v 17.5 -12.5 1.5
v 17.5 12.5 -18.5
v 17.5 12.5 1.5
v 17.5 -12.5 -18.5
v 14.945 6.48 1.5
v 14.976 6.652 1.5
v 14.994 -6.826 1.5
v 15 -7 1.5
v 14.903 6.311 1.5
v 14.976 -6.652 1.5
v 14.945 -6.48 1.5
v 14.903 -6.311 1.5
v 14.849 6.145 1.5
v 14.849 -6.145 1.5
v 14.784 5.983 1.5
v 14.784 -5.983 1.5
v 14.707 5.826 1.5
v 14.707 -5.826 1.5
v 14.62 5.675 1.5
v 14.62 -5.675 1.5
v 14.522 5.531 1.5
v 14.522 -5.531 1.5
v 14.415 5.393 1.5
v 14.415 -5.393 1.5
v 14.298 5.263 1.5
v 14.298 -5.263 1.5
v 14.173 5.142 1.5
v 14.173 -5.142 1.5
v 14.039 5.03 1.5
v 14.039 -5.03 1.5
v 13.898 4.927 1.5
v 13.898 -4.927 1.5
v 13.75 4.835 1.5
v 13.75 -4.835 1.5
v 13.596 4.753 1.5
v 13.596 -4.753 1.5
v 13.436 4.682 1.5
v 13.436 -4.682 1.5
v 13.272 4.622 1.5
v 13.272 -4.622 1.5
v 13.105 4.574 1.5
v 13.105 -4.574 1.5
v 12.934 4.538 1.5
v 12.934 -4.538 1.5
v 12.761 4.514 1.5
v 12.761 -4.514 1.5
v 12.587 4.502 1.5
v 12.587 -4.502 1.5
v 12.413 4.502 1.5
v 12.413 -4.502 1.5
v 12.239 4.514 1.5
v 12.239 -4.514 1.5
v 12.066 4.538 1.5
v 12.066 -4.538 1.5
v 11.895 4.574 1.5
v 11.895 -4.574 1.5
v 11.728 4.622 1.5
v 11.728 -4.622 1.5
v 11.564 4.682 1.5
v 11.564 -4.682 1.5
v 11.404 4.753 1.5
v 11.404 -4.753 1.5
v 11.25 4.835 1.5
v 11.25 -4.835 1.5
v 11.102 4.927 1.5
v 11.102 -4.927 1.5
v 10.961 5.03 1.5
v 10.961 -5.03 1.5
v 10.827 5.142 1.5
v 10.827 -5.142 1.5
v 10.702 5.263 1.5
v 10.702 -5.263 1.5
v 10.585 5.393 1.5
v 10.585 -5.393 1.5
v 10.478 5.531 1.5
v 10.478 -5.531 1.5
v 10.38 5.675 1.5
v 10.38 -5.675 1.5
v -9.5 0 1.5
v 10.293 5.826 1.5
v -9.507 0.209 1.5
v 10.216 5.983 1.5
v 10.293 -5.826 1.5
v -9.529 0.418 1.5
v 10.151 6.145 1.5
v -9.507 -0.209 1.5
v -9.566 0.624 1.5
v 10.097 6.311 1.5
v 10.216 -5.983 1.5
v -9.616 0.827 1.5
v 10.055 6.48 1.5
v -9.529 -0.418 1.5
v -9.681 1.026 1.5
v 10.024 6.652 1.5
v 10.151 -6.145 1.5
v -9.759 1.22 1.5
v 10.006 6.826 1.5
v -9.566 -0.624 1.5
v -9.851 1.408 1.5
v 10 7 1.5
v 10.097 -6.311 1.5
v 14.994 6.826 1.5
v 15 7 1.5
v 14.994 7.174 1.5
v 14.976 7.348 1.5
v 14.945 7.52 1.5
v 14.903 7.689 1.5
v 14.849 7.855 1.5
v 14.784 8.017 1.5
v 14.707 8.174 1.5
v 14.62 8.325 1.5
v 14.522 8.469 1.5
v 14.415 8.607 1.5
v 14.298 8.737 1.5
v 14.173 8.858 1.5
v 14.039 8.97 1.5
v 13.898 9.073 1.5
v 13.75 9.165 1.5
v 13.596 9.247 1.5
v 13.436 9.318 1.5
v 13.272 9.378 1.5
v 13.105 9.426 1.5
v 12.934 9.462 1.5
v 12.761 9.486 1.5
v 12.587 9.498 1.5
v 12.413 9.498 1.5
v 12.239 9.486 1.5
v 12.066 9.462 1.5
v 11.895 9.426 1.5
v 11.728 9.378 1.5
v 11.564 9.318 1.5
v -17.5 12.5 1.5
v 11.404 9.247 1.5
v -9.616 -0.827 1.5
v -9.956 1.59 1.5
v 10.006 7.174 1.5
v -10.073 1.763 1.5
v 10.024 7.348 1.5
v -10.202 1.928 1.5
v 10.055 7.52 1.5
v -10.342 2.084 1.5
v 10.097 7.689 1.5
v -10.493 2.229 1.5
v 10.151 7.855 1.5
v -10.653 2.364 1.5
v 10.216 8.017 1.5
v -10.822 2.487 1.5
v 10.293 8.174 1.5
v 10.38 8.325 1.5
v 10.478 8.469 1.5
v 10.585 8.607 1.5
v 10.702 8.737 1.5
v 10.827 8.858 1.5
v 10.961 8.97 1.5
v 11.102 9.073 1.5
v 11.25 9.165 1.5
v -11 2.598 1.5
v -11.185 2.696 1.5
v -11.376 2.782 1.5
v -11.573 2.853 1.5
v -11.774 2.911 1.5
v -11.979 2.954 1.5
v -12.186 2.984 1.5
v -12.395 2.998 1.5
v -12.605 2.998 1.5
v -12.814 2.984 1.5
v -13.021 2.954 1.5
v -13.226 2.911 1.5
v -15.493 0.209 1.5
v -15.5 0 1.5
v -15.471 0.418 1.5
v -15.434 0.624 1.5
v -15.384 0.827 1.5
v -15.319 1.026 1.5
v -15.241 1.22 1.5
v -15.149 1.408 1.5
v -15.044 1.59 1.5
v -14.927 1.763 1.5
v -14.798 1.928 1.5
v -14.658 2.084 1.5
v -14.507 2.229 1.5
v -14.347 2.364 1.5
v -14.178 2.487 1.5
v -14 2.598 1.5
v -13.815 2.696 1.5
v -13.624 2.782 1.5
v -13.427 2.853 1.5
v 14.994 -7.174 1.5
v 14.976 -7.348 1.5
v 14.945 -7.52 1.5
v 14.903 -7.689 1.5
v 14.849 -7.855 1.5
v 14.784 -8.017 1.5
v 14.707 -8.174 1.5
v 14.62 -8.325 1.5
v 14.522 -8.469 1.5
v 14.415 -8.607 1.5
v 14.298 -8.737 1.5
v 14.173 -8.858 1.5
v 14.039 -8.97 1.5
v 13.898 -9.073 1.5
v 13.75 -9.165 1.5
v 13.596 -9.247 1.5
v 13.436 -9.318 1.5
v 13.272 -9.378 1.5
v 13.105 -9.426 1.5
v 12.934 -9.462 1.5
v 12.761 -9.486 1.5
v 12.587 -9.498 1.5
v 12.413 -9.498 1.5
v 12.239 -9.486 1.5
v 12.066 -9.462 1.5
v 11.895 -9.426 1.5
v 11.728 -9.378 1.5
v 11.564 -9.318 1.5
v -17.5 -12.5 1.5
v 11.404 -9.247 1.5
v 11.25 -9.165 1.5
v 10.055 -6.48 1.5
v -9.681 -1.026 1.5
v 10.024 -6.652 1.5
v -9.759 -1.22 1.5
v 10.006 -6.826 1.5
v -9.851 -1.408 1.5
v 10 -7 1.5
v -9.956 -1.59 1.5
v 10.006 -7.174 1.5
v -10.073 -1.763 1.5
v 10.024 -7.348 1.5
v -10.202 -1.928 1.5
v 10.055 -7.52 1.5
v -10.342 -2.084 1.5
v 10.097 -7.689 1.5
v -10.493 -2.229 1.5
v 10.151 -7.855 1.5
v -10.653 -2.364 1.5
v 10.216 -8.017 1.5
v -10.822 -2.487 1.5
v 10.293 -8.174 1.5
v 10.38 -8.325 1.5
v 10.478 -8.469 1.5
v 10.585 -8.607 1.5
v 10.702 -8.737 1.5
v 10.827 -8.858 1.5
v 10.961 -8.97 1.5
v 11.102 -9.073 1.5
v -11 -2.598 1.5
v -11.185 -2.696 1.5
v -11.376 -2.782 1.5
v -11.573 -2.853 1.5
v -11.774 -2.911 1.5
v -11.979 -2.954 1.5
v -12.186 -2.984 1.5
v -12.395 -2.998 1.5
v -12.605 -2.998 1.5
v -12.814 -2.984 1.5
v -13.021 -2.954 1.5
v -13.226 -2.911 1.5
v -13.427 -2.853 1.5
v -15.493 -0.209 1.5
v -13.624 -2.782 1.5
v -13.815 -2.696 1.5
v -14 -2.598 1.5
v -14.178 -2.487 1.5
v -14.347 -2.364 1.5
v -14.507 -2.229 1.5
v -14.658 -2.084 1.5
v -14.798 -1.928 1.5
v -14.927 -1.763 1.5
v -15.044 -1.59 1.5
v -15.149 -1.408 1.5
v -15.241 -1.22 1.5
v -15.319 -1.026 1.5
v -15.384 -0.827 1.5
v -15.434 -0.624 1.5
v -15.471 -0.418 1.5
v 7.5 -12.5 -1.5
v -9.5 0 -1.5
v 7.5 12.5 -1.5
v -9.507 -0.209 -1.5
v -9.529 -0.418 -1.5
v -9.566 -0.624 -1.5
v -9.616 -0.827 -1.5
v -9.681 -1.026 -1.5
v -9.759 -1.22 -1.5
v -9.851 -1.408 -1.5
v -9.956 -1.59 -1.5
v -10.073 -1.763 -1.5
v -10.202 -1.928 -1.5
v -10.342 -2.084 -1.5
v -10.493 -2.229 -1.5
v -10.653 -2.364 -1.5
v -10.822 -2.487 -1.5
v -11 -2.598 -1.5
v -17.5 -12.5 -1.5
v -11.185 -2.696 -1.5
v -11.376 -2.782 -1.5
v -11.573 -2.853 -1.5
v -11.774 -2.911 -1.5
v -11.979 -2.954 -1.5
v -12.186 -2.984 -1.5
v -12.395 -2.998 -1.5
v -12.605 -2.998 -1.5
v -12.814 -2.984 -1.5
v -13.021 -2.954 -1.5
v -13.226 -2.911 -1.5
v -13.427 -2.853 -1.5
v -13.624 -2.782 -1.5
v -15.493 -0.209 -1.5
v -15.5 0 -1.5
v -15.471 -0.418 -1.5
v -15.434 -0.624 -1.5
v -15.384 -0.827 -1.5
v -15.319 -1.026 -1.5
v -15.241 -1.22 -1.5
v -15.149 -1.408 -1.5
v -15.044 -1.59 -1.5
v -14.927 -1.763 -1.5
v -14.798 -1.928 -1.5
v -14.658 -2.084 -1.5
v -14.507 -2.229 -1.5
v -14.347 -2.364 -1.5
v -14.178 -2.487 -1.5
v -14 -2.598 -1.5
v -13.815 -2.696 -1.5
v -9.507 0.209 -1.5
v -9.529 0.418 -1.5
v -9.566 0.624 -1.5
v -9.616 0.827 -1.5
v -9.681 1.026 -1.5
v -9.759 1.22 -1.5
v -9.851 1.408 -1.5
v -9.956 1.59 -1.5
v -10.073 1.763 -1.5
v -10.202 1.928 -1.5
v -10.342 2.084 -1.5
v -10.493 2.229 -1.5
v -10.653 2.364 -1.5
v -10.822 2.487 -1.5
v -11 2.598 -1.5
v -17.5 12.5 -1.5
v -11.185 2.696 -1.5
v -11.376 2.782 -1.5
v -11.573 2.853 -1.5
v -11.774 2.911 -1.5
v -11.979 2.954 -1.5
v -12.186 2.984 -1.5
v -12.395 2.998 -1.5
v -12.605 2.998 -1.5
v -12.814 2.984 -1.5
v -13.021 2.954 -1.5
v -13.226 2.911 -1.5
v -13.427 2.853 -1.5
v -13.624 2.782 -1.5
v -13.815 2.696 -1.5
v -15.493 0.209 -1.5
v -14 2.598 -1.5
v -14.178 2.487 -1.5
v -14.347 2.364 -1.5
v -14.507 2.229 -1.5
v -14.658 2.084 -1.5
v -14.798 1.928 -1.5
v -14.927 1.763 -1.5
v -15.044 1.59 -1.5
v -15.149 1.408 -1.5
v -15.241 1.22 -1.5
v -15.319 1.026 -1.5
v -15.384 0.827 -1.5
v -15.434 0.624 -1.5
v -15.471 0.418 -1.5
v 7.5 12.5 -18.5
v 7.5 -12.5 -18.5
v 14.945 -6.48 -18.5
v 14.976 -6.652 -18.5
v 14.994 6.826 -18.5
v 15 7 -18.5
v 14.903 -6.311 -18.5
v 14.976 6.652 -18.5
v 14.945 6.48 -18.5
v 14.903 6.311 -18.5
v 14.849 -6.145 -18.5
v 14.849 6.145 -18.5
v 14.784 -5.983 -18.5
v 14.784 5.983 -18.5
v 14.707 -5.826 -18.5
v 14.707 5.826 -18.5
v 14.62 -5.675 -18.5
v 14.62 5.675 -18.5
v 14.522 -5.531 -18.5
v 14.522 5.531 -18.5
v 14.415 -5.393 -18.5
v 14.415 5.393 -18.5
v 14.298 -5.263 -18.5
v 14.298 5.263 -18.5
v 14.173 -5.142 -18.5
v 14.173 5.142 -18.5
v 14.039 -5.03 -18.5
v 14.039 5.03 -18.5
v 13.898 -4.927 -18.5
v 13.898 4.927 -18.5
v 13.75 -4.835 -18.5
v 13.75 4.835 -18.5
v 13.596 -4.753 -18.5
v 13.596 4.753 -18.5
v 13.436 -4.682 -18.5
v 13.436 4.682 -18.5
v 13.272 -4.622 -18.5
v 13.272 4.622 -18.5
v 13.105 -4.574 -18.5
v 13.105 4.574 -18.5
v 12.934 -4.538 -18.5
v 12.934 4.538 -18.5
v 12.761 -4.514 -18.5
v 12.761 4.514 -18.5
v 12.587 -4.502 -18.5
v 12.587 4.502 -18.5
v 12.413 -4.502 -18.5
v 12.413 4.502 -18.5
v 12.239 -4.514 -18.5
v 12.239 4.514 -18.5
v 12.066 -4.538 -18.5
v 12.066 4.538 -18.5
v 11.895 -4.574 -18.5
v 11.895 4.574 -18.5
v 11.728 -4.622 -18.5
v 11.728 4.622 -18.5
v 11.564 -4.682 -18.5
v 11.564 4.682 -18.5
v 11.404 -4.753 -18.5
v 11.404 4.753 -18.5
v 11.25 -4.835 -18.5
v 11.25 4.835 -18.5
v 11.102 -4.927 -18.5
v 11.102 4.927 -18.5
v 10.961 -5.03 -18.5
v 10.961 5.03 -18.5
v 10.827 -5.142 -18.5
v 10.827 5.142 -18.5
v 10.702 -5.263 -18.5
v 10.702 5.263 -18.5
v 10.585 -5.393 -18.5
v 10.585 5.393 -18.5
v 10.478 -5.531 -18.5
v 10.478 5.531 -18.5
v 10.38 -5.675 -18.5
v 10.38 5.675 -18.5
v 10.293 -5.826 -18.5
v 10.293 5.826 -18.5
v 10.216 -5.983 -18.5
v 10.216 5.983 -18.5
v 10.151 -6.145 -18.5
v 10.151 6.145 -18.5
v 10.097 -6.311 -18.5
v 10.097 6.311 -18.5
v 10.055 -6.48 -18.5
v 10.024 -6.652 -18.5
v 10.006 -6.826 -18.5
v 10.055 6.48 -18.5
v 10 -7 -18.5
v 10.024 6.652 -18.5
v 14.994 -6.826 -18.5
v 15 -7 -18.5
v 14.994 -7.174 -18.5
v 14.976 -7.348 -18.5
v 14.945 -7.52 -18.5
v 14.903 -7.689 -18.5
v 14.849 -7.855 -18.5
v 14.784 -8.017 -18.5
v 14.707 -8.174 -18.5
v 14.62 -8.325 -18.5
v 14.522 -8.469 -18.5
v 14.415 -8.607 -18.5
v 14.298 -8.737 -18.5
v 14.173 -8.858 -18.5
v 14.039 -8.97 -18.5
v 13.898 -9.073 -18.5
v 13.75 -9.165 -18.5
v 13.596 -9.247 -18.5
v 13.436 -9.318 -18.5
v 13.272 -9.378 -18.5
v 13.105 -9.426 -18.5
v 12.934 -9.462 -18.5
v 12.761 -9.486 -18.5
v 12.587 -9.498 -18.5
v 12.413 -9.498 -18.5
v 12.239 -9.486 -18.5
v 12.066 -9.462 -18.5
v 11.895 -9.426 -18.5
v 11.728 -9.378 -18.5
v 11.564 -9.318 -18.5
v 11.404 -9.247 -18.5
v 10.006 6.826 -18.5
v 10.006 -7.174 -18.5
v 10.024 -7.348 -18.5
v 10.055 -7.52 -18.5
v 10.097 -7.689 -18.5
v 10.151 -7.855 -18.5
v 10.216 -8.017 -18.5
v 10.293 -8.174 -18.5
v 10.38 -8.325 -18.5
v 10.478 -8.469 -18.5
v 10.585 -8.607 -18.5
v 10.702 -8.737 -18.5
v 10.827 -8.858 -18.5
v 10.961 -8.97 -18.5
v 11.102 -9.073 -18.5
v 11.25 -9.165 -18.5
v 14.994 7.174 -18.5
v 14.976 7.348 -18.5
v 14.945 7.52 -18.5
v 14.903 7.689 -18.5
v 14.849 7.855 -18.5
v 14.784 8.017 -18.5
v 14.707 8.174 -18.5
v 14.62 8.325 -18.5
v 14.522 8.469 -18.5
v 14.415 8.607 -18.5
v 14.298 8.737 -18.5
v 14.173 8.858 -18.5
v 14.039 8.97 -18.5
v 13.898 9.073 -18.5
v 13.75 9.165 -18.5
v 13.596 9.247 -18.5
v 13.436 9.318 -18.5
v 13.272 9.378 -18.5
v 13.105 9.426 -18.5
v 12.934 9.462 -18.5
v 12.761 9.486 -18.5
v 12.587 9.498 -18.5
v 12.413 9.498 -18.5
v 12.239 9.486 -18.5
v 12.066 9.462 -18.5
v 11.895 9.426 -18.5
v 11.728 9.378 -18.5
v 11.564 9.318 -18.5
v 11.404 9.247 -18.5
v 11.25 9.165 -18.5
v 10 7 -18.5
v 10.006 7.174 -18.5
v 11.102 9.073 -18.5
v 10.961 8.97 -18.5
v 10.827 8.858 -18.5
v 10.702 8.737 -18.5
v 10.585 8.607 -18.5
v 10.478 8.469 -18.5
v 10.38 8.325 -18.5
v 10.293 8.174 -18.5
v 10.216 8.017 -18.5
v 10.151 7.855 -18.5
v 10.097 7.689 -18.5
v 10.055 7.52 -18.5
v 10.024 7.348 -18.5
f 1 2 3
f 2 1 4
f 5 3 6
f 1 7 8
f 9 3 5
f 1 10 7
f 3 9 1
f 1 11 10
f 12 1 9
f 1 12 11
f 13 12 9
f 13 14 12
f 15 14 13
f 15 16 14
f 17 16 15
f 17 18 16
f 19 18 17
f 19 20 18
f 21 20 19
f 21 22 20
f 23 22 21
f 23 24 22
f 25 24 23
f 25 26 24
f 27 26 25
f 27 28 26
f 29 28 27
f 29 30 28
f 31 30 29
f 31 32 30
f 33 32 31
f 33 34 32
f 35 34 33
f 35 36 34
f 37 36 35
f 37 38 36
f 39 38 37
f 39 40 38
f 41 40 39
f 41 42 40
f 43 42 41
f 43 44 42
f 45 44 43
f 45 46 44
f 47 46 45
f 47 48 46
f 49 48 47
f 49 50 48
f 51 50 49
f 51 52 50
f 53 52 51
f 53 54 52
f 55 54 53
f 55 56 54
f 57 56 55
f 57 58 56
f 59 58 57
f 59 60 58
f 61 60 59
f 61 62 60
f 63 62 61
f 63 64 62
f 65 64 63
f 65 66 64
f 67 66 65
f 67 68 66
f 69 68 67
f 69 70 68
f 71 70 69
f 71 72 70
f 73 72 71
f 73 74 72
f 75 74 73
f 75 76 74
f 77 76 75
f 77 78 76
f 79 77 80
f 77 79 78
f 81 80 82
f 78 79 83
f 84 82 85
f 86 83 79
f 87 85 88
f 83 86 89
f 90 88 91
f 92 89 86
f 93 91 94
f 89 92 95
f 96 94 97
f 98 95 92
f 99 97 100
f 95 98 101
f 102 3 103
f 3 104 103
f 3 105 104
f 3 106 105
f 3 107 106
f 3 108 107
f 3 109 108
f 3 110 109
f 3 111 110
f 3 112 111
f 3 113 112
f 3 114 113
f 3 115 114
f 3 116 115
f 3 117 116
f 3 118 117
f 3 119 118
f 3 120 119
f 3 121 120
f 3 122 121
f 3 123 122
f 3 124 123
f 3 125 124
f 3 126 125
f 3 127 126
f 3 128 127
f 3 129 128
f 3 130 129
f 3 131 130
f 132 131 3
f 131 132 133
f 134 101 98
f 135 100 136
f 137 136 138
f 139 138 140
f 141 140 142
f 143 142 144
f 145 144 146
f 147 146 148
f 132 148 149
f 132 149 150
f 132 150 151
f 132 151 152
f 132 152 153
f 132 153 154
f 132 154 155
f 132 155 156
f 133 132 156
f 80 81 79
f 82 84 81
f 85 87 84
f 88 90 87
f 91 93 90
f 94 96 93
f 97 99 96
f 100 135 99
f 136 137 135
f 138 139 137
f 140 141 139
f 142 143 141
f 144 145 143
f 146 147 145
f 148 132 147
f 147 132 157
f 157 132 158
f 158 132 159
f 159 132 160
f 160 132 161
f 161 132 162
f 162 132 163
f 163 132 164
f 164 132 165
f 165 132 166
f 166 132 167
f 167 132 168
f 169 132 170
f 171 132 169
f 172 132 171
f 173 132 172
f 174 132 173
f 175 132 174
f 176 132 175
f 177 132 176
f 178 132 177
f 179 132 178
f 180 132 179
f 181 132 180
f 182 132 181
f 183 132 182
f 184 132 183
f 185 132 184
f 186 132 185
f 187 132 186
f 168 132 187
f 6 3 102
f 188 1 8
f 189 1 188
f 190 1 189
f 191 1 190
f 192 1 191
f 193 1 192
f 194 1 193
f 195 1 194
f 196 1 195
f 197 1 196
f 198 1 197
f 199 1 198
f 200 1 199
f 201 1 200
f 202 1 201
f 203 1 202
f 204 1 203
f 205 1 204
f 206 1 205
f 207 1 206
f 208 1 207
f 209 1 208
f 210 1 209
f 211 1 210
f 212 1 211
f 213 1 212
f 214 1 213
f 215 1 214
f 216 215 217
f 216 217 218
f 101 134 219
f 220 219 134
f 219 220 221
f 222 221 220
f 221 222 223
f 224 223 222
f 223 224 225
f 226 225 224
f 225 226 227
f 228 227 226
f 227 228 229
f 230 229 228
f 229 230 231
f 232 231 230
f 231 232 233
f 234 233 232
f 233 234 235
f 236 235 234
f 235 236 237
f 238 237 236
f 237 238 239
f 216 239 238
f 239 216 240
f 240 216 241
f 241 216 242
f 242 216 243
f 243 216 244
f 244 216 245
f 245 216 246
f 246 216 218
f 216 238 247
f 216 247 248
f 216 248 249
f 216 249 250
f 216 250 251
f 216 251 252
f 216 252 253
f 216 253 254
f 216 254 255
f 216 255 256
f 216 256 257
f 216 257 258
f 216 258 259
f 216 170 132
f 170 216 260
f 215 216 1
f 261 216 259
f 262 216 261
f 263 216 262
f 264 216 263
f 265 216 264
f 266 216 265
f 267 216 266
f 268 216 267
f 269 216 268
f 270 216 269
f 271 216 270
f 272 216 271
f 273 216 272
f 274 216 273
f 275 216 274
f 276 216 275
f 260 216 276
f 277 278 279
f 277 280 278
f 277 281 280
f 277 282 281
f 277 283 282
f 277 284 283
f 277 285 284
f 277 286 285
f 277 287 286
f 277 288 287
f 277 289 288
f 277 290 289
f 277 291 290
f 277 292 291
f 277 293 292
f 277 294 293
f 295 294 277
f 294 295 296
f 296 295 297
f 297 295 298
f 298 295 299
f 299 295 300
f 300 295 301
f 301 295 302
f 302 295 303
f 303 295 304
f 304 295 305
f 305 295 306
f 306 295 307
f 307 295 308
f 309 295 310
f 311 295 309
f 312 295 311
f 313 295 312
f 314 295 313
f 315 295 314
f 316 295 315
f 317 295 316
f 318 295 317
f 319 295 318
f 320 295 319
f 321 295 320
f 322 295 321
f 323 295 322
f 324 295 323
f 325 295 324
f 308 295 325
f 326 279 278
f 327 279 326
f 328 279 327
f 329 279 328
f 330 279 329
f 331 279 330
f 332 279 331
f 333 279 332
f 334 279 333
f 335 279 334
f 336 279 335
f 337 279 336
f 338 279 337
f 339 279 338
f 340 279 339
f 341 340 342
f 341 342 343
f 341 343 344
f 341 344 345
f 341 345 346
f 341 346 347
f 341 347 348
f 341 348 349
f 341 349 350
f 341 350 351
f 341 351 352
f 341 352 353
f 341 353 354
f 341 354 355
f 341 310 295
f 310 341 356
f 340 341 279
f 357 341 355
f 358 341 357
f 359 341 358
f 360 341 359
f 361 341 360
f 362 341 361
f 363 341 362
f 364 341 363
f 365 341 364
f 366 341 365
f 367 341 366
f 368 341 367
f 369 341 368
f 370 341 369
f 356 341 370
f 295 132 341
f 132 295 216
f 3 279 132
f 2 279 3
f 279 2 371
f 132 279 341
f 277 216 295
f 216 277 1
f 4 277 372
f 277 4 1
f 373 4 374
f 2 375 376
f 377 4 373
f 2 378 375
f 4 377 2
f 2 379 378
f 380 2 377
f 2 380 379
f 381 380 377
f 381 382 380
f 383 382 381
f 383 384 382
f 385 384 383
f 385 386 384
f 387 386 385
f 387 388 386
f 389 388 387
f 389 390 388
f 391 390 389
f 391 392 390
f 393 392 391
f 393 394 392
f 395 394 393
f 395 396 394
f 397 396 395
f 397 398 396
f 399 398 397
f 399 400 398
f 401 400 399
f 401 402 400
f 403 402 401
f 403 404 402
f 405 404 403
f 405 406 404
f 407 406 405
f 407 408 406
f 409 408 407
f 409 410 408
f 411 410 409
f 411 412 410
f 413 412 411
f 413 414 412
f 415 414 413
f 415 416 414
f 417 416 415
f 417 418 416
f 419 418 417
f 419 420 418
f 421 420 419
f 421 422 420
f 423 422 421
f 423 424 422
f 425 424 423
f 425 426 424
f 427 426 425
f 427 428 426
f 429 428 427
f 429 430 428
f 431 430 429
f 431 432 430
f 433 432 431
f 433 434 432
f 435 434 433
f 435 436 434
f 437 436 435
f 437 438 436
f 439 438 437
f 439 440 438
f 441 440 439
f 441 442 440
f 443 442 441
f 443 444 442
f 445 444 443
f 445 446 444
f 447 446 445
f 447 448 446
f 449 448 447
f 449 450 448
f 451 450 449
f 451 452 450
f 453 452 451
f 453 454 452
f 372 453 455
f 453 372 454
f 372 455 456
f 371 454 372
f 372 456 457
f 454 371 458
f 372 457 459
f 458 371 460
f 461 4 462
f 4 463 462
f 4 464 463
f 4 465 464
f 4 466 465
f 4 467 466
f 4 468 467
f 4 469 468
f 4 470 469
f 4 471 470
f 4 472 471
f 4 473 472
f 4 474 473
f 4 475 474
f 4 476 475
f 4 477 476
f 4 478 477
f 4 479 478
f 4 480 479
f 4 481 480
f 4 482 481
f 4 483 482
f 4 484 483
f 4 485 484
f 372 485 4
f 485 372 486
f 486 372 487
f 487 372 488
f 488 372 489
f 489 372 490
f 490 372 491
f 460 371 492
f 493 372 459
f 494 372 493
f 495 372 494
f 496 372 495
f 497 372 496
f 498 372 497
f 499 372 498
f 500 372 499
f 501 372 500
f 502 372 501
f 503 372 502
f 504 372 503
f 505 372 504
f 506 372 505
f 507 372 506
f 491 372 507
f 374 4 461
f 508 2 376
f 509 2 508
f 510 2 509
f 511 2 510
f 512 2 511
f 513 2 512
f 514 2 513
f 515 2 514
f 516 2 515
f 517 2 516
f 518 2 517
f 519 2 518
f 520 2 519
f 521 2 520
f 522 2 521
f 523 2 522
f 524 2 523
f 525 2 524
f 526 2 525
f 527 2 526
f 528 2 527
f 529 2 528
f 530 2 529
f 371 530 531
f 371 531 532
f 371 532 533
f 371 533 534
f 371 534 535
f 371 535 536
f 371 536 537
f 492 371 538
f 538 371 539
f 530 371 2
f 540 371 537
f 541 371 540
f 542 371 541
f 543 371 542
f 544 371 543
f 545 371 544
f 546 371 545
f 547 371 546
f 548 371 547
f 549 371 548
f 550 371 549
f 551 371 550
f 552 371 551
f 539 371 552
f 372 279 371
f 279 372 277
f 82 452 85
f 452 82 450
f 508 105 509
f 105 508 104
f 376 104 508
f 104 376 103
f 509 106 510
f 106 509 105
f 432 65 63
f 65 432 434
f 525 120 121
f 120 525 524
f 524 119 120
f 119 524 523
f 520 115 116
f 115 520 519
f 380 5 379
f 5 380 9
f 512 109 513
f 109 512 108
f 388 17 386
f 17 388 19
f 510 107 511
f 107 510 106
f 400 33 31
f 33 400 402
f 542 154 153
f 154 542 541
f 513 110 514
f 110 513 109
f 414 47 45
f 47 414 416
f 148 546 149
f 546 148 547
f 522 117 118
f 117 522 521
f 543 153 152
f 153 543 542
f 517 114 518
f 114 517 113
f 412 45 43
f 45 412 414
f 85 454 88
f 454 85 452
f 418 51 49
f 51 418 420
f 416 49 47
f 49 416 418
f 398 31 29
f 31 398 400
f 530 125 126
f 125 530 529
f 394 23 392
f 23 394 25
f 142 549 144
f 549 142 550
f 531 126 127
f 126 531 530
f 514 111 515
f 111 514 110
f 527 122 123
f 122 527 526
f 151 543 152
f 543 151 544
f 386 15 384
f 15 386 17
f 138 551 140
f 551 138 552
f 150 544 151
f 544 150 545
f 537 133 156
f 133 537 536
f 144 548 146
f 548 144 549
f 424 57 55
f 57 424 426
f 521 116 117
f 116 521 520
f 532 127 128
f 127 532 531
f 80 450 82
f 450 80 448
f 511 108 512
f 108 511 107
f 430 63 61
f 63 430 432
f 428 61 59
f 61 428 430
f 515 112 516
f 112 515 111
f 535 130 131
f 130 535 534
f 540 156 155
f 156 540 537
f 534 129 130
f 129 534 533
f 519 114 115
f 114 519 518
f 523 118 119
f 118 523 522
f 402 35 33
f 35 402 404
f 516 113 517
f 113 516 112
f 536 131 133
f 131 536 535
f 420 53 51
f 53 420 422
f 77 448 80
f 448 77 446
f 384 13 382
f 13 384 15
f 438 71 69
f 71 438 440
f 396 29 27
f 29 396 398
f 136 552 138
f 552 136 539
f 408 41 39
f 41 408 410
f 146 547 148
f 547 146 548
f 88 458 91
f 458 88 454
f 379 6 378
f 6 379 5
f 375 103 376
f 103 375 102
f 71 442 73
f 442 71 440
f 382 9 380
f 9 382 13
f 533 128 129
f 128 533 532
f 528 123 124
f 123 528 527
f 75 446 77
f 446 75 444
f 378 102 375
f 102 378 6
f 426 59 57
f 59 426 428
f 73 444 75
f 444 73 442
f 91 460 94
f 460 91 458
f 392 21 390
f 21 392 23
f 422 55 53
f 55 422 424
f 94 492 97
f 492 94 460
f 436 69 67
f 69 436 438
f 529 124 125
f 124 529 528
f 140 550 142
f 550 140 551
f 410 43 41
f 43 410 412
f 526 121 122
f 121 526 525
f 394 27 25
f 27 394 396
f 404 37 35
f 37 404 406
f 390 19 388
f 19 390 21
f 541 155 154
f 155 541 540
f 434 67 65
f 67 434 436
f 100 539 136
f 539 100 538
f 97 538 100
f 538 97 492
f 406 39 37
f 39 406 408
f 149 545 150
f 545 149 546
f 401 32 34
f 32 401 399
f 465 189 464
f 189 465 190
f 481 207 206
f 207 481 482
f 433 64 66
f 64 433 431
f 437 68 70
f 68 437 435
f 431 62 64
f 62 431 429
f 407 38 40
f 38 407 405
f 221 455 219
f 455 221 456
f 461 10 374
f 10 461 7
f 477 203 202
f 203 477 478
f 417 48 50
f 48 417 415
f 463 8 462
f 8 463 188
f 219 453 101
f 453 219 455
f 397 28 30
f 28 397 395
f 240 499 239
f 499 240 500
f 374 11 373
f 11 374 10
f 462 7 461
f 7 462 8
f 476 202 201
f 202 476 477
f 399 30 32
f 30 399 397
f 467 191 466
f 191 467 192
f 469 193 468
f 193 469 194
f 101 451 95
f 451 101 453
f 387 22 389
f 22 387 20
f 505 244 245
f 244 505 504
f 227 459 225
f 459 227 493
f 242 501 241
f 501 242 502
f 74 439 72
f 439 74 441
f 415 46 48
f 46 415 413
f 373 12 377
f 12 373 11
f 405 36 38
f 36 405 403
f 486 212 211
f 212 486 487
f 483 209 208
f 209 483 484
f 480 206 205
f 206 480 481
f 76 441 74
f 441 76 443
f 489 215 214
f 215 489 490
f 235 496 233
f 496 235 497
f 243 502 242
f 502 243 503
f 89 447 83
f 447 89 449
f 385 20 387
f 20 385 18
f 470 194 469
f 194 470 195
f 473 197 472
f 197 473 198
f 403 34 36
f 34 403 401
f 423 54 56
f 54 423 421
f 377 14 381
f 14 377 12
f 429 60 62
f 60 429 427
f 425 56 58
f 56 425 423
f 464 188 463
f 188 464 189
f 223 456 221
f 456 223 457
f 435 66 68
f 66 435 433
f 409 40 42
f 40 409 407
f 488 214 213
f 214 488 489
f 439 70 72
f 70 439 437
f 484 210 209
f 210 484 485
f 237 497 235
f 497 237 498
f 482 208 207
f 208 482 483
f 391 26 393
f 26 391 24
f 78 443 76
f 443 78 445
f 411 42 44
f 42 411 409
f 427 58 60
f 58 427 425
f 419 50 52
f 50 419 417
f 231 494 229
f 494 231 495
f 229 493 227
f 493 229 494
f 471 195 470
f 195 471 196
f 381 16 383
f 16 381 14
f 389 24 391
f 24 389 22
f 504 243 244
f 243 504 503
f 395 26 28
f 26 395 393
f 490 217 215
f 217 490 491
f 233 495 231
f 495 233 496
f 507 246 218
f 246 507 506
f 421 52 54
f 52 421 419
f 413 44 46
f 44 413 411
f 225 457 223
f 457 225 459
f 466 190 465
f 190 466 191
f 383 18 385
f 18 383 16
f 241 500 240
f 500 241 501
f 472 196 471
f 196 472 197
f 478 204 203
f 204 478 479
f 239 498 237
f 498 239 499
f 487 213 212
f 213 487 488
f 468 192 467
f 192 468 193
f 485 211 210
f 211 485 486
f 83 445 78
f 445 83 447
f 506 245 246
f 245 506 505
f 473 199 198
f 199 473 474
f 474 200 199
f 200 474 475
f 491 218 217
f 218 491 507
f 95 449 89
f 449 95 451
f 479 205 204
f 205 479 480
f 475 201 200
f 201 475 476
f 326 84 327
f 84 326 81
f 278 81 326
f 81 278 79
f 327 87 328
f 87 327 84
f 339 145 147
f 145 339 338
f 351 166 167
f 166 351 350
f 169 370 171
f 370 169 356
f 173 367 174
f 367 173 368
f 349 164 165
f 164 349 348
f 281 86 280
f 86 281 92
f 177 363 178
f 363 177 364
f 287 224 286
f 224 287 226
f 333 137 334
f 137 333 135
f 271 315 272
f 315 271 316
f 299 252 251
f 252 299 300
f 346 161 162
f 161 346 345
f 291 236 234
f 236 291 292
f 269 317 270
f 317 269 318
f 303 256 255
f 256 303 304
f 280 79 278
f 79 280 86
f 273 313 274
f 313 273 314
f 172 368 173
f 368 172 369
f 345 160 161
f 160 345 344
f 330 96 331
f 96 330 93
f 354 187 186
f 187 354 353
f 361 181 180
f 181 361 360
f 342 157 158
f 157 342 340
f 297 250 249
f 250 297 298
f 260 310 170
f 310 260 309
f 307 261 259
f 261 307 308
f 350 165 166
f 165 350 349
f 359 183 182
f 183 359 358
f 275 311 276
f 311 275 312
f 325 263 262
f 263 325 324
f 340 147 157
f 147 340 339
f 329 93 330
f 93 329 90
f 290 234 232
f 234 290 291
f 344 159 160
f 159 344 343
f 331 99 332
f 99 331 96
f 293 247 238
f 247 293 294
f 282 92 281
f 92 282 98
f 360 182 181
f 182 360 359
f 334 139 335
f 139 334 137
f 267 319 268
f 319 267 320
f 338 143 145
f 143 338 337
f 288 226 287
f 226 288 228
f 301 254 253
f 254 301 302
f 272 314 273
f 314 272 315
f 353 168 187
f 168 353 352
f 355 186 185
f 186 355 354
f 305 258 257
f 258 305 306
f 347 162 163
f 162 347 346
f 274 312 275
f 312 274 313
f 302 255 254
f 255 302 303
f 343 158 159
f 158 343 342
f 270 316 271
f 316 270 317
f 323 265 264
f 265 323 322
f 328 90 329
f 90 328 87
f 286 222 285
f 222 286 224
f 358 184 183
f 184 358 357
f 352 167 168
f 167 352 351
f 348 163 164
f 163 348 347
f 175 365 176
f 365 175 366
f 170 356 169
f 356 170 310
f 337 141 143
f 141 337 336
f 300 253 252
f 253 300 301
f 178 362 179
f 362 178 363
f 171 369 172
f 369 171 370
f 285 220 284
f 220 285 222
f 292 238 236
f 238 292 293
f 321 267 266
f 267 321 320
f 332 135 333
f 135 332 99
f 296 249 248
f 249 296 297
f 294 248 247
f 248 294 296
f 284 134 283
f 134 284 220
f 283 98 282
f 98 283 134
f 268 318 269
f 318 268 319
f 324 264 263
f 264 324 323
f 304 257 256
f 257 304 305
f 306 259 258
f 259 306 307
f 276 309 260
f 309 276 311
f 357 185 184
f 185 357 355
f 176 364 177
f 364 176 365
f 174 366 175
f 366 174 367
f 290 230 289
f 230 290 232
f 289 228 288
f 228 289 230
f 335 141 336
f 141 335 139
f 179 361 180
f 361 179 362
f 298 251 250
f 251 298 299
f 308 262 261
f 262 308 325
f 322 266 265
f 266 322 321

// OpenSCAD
$fn = 90;
height = 3;
length = 35;
width = 25;
supportHeight = 20;
supportThickness = 10;
difference(){
	union(){
		cube([length, width, height], center=true);
		translate([(length-supportThickness)/2, 0, -(supportHeight-height)/2])
			cube([supportThickness, width, supportHeight], center=true);
	}
	diameter = 5;
	#translate([(length-supportThickness)/2, 7, -(supportHeight-height/2)])
		cylinder(d=diameter, h=supportHeight);
	#translate([(length-supportThickness)/2, -7, -(supportHeight-height/2)])
		cylinder(d=diameter, h=supportHeight);
	
	#translate([-length/2+5, 0, 0])
		cylinder(d=6, h=height, center=true);
}
